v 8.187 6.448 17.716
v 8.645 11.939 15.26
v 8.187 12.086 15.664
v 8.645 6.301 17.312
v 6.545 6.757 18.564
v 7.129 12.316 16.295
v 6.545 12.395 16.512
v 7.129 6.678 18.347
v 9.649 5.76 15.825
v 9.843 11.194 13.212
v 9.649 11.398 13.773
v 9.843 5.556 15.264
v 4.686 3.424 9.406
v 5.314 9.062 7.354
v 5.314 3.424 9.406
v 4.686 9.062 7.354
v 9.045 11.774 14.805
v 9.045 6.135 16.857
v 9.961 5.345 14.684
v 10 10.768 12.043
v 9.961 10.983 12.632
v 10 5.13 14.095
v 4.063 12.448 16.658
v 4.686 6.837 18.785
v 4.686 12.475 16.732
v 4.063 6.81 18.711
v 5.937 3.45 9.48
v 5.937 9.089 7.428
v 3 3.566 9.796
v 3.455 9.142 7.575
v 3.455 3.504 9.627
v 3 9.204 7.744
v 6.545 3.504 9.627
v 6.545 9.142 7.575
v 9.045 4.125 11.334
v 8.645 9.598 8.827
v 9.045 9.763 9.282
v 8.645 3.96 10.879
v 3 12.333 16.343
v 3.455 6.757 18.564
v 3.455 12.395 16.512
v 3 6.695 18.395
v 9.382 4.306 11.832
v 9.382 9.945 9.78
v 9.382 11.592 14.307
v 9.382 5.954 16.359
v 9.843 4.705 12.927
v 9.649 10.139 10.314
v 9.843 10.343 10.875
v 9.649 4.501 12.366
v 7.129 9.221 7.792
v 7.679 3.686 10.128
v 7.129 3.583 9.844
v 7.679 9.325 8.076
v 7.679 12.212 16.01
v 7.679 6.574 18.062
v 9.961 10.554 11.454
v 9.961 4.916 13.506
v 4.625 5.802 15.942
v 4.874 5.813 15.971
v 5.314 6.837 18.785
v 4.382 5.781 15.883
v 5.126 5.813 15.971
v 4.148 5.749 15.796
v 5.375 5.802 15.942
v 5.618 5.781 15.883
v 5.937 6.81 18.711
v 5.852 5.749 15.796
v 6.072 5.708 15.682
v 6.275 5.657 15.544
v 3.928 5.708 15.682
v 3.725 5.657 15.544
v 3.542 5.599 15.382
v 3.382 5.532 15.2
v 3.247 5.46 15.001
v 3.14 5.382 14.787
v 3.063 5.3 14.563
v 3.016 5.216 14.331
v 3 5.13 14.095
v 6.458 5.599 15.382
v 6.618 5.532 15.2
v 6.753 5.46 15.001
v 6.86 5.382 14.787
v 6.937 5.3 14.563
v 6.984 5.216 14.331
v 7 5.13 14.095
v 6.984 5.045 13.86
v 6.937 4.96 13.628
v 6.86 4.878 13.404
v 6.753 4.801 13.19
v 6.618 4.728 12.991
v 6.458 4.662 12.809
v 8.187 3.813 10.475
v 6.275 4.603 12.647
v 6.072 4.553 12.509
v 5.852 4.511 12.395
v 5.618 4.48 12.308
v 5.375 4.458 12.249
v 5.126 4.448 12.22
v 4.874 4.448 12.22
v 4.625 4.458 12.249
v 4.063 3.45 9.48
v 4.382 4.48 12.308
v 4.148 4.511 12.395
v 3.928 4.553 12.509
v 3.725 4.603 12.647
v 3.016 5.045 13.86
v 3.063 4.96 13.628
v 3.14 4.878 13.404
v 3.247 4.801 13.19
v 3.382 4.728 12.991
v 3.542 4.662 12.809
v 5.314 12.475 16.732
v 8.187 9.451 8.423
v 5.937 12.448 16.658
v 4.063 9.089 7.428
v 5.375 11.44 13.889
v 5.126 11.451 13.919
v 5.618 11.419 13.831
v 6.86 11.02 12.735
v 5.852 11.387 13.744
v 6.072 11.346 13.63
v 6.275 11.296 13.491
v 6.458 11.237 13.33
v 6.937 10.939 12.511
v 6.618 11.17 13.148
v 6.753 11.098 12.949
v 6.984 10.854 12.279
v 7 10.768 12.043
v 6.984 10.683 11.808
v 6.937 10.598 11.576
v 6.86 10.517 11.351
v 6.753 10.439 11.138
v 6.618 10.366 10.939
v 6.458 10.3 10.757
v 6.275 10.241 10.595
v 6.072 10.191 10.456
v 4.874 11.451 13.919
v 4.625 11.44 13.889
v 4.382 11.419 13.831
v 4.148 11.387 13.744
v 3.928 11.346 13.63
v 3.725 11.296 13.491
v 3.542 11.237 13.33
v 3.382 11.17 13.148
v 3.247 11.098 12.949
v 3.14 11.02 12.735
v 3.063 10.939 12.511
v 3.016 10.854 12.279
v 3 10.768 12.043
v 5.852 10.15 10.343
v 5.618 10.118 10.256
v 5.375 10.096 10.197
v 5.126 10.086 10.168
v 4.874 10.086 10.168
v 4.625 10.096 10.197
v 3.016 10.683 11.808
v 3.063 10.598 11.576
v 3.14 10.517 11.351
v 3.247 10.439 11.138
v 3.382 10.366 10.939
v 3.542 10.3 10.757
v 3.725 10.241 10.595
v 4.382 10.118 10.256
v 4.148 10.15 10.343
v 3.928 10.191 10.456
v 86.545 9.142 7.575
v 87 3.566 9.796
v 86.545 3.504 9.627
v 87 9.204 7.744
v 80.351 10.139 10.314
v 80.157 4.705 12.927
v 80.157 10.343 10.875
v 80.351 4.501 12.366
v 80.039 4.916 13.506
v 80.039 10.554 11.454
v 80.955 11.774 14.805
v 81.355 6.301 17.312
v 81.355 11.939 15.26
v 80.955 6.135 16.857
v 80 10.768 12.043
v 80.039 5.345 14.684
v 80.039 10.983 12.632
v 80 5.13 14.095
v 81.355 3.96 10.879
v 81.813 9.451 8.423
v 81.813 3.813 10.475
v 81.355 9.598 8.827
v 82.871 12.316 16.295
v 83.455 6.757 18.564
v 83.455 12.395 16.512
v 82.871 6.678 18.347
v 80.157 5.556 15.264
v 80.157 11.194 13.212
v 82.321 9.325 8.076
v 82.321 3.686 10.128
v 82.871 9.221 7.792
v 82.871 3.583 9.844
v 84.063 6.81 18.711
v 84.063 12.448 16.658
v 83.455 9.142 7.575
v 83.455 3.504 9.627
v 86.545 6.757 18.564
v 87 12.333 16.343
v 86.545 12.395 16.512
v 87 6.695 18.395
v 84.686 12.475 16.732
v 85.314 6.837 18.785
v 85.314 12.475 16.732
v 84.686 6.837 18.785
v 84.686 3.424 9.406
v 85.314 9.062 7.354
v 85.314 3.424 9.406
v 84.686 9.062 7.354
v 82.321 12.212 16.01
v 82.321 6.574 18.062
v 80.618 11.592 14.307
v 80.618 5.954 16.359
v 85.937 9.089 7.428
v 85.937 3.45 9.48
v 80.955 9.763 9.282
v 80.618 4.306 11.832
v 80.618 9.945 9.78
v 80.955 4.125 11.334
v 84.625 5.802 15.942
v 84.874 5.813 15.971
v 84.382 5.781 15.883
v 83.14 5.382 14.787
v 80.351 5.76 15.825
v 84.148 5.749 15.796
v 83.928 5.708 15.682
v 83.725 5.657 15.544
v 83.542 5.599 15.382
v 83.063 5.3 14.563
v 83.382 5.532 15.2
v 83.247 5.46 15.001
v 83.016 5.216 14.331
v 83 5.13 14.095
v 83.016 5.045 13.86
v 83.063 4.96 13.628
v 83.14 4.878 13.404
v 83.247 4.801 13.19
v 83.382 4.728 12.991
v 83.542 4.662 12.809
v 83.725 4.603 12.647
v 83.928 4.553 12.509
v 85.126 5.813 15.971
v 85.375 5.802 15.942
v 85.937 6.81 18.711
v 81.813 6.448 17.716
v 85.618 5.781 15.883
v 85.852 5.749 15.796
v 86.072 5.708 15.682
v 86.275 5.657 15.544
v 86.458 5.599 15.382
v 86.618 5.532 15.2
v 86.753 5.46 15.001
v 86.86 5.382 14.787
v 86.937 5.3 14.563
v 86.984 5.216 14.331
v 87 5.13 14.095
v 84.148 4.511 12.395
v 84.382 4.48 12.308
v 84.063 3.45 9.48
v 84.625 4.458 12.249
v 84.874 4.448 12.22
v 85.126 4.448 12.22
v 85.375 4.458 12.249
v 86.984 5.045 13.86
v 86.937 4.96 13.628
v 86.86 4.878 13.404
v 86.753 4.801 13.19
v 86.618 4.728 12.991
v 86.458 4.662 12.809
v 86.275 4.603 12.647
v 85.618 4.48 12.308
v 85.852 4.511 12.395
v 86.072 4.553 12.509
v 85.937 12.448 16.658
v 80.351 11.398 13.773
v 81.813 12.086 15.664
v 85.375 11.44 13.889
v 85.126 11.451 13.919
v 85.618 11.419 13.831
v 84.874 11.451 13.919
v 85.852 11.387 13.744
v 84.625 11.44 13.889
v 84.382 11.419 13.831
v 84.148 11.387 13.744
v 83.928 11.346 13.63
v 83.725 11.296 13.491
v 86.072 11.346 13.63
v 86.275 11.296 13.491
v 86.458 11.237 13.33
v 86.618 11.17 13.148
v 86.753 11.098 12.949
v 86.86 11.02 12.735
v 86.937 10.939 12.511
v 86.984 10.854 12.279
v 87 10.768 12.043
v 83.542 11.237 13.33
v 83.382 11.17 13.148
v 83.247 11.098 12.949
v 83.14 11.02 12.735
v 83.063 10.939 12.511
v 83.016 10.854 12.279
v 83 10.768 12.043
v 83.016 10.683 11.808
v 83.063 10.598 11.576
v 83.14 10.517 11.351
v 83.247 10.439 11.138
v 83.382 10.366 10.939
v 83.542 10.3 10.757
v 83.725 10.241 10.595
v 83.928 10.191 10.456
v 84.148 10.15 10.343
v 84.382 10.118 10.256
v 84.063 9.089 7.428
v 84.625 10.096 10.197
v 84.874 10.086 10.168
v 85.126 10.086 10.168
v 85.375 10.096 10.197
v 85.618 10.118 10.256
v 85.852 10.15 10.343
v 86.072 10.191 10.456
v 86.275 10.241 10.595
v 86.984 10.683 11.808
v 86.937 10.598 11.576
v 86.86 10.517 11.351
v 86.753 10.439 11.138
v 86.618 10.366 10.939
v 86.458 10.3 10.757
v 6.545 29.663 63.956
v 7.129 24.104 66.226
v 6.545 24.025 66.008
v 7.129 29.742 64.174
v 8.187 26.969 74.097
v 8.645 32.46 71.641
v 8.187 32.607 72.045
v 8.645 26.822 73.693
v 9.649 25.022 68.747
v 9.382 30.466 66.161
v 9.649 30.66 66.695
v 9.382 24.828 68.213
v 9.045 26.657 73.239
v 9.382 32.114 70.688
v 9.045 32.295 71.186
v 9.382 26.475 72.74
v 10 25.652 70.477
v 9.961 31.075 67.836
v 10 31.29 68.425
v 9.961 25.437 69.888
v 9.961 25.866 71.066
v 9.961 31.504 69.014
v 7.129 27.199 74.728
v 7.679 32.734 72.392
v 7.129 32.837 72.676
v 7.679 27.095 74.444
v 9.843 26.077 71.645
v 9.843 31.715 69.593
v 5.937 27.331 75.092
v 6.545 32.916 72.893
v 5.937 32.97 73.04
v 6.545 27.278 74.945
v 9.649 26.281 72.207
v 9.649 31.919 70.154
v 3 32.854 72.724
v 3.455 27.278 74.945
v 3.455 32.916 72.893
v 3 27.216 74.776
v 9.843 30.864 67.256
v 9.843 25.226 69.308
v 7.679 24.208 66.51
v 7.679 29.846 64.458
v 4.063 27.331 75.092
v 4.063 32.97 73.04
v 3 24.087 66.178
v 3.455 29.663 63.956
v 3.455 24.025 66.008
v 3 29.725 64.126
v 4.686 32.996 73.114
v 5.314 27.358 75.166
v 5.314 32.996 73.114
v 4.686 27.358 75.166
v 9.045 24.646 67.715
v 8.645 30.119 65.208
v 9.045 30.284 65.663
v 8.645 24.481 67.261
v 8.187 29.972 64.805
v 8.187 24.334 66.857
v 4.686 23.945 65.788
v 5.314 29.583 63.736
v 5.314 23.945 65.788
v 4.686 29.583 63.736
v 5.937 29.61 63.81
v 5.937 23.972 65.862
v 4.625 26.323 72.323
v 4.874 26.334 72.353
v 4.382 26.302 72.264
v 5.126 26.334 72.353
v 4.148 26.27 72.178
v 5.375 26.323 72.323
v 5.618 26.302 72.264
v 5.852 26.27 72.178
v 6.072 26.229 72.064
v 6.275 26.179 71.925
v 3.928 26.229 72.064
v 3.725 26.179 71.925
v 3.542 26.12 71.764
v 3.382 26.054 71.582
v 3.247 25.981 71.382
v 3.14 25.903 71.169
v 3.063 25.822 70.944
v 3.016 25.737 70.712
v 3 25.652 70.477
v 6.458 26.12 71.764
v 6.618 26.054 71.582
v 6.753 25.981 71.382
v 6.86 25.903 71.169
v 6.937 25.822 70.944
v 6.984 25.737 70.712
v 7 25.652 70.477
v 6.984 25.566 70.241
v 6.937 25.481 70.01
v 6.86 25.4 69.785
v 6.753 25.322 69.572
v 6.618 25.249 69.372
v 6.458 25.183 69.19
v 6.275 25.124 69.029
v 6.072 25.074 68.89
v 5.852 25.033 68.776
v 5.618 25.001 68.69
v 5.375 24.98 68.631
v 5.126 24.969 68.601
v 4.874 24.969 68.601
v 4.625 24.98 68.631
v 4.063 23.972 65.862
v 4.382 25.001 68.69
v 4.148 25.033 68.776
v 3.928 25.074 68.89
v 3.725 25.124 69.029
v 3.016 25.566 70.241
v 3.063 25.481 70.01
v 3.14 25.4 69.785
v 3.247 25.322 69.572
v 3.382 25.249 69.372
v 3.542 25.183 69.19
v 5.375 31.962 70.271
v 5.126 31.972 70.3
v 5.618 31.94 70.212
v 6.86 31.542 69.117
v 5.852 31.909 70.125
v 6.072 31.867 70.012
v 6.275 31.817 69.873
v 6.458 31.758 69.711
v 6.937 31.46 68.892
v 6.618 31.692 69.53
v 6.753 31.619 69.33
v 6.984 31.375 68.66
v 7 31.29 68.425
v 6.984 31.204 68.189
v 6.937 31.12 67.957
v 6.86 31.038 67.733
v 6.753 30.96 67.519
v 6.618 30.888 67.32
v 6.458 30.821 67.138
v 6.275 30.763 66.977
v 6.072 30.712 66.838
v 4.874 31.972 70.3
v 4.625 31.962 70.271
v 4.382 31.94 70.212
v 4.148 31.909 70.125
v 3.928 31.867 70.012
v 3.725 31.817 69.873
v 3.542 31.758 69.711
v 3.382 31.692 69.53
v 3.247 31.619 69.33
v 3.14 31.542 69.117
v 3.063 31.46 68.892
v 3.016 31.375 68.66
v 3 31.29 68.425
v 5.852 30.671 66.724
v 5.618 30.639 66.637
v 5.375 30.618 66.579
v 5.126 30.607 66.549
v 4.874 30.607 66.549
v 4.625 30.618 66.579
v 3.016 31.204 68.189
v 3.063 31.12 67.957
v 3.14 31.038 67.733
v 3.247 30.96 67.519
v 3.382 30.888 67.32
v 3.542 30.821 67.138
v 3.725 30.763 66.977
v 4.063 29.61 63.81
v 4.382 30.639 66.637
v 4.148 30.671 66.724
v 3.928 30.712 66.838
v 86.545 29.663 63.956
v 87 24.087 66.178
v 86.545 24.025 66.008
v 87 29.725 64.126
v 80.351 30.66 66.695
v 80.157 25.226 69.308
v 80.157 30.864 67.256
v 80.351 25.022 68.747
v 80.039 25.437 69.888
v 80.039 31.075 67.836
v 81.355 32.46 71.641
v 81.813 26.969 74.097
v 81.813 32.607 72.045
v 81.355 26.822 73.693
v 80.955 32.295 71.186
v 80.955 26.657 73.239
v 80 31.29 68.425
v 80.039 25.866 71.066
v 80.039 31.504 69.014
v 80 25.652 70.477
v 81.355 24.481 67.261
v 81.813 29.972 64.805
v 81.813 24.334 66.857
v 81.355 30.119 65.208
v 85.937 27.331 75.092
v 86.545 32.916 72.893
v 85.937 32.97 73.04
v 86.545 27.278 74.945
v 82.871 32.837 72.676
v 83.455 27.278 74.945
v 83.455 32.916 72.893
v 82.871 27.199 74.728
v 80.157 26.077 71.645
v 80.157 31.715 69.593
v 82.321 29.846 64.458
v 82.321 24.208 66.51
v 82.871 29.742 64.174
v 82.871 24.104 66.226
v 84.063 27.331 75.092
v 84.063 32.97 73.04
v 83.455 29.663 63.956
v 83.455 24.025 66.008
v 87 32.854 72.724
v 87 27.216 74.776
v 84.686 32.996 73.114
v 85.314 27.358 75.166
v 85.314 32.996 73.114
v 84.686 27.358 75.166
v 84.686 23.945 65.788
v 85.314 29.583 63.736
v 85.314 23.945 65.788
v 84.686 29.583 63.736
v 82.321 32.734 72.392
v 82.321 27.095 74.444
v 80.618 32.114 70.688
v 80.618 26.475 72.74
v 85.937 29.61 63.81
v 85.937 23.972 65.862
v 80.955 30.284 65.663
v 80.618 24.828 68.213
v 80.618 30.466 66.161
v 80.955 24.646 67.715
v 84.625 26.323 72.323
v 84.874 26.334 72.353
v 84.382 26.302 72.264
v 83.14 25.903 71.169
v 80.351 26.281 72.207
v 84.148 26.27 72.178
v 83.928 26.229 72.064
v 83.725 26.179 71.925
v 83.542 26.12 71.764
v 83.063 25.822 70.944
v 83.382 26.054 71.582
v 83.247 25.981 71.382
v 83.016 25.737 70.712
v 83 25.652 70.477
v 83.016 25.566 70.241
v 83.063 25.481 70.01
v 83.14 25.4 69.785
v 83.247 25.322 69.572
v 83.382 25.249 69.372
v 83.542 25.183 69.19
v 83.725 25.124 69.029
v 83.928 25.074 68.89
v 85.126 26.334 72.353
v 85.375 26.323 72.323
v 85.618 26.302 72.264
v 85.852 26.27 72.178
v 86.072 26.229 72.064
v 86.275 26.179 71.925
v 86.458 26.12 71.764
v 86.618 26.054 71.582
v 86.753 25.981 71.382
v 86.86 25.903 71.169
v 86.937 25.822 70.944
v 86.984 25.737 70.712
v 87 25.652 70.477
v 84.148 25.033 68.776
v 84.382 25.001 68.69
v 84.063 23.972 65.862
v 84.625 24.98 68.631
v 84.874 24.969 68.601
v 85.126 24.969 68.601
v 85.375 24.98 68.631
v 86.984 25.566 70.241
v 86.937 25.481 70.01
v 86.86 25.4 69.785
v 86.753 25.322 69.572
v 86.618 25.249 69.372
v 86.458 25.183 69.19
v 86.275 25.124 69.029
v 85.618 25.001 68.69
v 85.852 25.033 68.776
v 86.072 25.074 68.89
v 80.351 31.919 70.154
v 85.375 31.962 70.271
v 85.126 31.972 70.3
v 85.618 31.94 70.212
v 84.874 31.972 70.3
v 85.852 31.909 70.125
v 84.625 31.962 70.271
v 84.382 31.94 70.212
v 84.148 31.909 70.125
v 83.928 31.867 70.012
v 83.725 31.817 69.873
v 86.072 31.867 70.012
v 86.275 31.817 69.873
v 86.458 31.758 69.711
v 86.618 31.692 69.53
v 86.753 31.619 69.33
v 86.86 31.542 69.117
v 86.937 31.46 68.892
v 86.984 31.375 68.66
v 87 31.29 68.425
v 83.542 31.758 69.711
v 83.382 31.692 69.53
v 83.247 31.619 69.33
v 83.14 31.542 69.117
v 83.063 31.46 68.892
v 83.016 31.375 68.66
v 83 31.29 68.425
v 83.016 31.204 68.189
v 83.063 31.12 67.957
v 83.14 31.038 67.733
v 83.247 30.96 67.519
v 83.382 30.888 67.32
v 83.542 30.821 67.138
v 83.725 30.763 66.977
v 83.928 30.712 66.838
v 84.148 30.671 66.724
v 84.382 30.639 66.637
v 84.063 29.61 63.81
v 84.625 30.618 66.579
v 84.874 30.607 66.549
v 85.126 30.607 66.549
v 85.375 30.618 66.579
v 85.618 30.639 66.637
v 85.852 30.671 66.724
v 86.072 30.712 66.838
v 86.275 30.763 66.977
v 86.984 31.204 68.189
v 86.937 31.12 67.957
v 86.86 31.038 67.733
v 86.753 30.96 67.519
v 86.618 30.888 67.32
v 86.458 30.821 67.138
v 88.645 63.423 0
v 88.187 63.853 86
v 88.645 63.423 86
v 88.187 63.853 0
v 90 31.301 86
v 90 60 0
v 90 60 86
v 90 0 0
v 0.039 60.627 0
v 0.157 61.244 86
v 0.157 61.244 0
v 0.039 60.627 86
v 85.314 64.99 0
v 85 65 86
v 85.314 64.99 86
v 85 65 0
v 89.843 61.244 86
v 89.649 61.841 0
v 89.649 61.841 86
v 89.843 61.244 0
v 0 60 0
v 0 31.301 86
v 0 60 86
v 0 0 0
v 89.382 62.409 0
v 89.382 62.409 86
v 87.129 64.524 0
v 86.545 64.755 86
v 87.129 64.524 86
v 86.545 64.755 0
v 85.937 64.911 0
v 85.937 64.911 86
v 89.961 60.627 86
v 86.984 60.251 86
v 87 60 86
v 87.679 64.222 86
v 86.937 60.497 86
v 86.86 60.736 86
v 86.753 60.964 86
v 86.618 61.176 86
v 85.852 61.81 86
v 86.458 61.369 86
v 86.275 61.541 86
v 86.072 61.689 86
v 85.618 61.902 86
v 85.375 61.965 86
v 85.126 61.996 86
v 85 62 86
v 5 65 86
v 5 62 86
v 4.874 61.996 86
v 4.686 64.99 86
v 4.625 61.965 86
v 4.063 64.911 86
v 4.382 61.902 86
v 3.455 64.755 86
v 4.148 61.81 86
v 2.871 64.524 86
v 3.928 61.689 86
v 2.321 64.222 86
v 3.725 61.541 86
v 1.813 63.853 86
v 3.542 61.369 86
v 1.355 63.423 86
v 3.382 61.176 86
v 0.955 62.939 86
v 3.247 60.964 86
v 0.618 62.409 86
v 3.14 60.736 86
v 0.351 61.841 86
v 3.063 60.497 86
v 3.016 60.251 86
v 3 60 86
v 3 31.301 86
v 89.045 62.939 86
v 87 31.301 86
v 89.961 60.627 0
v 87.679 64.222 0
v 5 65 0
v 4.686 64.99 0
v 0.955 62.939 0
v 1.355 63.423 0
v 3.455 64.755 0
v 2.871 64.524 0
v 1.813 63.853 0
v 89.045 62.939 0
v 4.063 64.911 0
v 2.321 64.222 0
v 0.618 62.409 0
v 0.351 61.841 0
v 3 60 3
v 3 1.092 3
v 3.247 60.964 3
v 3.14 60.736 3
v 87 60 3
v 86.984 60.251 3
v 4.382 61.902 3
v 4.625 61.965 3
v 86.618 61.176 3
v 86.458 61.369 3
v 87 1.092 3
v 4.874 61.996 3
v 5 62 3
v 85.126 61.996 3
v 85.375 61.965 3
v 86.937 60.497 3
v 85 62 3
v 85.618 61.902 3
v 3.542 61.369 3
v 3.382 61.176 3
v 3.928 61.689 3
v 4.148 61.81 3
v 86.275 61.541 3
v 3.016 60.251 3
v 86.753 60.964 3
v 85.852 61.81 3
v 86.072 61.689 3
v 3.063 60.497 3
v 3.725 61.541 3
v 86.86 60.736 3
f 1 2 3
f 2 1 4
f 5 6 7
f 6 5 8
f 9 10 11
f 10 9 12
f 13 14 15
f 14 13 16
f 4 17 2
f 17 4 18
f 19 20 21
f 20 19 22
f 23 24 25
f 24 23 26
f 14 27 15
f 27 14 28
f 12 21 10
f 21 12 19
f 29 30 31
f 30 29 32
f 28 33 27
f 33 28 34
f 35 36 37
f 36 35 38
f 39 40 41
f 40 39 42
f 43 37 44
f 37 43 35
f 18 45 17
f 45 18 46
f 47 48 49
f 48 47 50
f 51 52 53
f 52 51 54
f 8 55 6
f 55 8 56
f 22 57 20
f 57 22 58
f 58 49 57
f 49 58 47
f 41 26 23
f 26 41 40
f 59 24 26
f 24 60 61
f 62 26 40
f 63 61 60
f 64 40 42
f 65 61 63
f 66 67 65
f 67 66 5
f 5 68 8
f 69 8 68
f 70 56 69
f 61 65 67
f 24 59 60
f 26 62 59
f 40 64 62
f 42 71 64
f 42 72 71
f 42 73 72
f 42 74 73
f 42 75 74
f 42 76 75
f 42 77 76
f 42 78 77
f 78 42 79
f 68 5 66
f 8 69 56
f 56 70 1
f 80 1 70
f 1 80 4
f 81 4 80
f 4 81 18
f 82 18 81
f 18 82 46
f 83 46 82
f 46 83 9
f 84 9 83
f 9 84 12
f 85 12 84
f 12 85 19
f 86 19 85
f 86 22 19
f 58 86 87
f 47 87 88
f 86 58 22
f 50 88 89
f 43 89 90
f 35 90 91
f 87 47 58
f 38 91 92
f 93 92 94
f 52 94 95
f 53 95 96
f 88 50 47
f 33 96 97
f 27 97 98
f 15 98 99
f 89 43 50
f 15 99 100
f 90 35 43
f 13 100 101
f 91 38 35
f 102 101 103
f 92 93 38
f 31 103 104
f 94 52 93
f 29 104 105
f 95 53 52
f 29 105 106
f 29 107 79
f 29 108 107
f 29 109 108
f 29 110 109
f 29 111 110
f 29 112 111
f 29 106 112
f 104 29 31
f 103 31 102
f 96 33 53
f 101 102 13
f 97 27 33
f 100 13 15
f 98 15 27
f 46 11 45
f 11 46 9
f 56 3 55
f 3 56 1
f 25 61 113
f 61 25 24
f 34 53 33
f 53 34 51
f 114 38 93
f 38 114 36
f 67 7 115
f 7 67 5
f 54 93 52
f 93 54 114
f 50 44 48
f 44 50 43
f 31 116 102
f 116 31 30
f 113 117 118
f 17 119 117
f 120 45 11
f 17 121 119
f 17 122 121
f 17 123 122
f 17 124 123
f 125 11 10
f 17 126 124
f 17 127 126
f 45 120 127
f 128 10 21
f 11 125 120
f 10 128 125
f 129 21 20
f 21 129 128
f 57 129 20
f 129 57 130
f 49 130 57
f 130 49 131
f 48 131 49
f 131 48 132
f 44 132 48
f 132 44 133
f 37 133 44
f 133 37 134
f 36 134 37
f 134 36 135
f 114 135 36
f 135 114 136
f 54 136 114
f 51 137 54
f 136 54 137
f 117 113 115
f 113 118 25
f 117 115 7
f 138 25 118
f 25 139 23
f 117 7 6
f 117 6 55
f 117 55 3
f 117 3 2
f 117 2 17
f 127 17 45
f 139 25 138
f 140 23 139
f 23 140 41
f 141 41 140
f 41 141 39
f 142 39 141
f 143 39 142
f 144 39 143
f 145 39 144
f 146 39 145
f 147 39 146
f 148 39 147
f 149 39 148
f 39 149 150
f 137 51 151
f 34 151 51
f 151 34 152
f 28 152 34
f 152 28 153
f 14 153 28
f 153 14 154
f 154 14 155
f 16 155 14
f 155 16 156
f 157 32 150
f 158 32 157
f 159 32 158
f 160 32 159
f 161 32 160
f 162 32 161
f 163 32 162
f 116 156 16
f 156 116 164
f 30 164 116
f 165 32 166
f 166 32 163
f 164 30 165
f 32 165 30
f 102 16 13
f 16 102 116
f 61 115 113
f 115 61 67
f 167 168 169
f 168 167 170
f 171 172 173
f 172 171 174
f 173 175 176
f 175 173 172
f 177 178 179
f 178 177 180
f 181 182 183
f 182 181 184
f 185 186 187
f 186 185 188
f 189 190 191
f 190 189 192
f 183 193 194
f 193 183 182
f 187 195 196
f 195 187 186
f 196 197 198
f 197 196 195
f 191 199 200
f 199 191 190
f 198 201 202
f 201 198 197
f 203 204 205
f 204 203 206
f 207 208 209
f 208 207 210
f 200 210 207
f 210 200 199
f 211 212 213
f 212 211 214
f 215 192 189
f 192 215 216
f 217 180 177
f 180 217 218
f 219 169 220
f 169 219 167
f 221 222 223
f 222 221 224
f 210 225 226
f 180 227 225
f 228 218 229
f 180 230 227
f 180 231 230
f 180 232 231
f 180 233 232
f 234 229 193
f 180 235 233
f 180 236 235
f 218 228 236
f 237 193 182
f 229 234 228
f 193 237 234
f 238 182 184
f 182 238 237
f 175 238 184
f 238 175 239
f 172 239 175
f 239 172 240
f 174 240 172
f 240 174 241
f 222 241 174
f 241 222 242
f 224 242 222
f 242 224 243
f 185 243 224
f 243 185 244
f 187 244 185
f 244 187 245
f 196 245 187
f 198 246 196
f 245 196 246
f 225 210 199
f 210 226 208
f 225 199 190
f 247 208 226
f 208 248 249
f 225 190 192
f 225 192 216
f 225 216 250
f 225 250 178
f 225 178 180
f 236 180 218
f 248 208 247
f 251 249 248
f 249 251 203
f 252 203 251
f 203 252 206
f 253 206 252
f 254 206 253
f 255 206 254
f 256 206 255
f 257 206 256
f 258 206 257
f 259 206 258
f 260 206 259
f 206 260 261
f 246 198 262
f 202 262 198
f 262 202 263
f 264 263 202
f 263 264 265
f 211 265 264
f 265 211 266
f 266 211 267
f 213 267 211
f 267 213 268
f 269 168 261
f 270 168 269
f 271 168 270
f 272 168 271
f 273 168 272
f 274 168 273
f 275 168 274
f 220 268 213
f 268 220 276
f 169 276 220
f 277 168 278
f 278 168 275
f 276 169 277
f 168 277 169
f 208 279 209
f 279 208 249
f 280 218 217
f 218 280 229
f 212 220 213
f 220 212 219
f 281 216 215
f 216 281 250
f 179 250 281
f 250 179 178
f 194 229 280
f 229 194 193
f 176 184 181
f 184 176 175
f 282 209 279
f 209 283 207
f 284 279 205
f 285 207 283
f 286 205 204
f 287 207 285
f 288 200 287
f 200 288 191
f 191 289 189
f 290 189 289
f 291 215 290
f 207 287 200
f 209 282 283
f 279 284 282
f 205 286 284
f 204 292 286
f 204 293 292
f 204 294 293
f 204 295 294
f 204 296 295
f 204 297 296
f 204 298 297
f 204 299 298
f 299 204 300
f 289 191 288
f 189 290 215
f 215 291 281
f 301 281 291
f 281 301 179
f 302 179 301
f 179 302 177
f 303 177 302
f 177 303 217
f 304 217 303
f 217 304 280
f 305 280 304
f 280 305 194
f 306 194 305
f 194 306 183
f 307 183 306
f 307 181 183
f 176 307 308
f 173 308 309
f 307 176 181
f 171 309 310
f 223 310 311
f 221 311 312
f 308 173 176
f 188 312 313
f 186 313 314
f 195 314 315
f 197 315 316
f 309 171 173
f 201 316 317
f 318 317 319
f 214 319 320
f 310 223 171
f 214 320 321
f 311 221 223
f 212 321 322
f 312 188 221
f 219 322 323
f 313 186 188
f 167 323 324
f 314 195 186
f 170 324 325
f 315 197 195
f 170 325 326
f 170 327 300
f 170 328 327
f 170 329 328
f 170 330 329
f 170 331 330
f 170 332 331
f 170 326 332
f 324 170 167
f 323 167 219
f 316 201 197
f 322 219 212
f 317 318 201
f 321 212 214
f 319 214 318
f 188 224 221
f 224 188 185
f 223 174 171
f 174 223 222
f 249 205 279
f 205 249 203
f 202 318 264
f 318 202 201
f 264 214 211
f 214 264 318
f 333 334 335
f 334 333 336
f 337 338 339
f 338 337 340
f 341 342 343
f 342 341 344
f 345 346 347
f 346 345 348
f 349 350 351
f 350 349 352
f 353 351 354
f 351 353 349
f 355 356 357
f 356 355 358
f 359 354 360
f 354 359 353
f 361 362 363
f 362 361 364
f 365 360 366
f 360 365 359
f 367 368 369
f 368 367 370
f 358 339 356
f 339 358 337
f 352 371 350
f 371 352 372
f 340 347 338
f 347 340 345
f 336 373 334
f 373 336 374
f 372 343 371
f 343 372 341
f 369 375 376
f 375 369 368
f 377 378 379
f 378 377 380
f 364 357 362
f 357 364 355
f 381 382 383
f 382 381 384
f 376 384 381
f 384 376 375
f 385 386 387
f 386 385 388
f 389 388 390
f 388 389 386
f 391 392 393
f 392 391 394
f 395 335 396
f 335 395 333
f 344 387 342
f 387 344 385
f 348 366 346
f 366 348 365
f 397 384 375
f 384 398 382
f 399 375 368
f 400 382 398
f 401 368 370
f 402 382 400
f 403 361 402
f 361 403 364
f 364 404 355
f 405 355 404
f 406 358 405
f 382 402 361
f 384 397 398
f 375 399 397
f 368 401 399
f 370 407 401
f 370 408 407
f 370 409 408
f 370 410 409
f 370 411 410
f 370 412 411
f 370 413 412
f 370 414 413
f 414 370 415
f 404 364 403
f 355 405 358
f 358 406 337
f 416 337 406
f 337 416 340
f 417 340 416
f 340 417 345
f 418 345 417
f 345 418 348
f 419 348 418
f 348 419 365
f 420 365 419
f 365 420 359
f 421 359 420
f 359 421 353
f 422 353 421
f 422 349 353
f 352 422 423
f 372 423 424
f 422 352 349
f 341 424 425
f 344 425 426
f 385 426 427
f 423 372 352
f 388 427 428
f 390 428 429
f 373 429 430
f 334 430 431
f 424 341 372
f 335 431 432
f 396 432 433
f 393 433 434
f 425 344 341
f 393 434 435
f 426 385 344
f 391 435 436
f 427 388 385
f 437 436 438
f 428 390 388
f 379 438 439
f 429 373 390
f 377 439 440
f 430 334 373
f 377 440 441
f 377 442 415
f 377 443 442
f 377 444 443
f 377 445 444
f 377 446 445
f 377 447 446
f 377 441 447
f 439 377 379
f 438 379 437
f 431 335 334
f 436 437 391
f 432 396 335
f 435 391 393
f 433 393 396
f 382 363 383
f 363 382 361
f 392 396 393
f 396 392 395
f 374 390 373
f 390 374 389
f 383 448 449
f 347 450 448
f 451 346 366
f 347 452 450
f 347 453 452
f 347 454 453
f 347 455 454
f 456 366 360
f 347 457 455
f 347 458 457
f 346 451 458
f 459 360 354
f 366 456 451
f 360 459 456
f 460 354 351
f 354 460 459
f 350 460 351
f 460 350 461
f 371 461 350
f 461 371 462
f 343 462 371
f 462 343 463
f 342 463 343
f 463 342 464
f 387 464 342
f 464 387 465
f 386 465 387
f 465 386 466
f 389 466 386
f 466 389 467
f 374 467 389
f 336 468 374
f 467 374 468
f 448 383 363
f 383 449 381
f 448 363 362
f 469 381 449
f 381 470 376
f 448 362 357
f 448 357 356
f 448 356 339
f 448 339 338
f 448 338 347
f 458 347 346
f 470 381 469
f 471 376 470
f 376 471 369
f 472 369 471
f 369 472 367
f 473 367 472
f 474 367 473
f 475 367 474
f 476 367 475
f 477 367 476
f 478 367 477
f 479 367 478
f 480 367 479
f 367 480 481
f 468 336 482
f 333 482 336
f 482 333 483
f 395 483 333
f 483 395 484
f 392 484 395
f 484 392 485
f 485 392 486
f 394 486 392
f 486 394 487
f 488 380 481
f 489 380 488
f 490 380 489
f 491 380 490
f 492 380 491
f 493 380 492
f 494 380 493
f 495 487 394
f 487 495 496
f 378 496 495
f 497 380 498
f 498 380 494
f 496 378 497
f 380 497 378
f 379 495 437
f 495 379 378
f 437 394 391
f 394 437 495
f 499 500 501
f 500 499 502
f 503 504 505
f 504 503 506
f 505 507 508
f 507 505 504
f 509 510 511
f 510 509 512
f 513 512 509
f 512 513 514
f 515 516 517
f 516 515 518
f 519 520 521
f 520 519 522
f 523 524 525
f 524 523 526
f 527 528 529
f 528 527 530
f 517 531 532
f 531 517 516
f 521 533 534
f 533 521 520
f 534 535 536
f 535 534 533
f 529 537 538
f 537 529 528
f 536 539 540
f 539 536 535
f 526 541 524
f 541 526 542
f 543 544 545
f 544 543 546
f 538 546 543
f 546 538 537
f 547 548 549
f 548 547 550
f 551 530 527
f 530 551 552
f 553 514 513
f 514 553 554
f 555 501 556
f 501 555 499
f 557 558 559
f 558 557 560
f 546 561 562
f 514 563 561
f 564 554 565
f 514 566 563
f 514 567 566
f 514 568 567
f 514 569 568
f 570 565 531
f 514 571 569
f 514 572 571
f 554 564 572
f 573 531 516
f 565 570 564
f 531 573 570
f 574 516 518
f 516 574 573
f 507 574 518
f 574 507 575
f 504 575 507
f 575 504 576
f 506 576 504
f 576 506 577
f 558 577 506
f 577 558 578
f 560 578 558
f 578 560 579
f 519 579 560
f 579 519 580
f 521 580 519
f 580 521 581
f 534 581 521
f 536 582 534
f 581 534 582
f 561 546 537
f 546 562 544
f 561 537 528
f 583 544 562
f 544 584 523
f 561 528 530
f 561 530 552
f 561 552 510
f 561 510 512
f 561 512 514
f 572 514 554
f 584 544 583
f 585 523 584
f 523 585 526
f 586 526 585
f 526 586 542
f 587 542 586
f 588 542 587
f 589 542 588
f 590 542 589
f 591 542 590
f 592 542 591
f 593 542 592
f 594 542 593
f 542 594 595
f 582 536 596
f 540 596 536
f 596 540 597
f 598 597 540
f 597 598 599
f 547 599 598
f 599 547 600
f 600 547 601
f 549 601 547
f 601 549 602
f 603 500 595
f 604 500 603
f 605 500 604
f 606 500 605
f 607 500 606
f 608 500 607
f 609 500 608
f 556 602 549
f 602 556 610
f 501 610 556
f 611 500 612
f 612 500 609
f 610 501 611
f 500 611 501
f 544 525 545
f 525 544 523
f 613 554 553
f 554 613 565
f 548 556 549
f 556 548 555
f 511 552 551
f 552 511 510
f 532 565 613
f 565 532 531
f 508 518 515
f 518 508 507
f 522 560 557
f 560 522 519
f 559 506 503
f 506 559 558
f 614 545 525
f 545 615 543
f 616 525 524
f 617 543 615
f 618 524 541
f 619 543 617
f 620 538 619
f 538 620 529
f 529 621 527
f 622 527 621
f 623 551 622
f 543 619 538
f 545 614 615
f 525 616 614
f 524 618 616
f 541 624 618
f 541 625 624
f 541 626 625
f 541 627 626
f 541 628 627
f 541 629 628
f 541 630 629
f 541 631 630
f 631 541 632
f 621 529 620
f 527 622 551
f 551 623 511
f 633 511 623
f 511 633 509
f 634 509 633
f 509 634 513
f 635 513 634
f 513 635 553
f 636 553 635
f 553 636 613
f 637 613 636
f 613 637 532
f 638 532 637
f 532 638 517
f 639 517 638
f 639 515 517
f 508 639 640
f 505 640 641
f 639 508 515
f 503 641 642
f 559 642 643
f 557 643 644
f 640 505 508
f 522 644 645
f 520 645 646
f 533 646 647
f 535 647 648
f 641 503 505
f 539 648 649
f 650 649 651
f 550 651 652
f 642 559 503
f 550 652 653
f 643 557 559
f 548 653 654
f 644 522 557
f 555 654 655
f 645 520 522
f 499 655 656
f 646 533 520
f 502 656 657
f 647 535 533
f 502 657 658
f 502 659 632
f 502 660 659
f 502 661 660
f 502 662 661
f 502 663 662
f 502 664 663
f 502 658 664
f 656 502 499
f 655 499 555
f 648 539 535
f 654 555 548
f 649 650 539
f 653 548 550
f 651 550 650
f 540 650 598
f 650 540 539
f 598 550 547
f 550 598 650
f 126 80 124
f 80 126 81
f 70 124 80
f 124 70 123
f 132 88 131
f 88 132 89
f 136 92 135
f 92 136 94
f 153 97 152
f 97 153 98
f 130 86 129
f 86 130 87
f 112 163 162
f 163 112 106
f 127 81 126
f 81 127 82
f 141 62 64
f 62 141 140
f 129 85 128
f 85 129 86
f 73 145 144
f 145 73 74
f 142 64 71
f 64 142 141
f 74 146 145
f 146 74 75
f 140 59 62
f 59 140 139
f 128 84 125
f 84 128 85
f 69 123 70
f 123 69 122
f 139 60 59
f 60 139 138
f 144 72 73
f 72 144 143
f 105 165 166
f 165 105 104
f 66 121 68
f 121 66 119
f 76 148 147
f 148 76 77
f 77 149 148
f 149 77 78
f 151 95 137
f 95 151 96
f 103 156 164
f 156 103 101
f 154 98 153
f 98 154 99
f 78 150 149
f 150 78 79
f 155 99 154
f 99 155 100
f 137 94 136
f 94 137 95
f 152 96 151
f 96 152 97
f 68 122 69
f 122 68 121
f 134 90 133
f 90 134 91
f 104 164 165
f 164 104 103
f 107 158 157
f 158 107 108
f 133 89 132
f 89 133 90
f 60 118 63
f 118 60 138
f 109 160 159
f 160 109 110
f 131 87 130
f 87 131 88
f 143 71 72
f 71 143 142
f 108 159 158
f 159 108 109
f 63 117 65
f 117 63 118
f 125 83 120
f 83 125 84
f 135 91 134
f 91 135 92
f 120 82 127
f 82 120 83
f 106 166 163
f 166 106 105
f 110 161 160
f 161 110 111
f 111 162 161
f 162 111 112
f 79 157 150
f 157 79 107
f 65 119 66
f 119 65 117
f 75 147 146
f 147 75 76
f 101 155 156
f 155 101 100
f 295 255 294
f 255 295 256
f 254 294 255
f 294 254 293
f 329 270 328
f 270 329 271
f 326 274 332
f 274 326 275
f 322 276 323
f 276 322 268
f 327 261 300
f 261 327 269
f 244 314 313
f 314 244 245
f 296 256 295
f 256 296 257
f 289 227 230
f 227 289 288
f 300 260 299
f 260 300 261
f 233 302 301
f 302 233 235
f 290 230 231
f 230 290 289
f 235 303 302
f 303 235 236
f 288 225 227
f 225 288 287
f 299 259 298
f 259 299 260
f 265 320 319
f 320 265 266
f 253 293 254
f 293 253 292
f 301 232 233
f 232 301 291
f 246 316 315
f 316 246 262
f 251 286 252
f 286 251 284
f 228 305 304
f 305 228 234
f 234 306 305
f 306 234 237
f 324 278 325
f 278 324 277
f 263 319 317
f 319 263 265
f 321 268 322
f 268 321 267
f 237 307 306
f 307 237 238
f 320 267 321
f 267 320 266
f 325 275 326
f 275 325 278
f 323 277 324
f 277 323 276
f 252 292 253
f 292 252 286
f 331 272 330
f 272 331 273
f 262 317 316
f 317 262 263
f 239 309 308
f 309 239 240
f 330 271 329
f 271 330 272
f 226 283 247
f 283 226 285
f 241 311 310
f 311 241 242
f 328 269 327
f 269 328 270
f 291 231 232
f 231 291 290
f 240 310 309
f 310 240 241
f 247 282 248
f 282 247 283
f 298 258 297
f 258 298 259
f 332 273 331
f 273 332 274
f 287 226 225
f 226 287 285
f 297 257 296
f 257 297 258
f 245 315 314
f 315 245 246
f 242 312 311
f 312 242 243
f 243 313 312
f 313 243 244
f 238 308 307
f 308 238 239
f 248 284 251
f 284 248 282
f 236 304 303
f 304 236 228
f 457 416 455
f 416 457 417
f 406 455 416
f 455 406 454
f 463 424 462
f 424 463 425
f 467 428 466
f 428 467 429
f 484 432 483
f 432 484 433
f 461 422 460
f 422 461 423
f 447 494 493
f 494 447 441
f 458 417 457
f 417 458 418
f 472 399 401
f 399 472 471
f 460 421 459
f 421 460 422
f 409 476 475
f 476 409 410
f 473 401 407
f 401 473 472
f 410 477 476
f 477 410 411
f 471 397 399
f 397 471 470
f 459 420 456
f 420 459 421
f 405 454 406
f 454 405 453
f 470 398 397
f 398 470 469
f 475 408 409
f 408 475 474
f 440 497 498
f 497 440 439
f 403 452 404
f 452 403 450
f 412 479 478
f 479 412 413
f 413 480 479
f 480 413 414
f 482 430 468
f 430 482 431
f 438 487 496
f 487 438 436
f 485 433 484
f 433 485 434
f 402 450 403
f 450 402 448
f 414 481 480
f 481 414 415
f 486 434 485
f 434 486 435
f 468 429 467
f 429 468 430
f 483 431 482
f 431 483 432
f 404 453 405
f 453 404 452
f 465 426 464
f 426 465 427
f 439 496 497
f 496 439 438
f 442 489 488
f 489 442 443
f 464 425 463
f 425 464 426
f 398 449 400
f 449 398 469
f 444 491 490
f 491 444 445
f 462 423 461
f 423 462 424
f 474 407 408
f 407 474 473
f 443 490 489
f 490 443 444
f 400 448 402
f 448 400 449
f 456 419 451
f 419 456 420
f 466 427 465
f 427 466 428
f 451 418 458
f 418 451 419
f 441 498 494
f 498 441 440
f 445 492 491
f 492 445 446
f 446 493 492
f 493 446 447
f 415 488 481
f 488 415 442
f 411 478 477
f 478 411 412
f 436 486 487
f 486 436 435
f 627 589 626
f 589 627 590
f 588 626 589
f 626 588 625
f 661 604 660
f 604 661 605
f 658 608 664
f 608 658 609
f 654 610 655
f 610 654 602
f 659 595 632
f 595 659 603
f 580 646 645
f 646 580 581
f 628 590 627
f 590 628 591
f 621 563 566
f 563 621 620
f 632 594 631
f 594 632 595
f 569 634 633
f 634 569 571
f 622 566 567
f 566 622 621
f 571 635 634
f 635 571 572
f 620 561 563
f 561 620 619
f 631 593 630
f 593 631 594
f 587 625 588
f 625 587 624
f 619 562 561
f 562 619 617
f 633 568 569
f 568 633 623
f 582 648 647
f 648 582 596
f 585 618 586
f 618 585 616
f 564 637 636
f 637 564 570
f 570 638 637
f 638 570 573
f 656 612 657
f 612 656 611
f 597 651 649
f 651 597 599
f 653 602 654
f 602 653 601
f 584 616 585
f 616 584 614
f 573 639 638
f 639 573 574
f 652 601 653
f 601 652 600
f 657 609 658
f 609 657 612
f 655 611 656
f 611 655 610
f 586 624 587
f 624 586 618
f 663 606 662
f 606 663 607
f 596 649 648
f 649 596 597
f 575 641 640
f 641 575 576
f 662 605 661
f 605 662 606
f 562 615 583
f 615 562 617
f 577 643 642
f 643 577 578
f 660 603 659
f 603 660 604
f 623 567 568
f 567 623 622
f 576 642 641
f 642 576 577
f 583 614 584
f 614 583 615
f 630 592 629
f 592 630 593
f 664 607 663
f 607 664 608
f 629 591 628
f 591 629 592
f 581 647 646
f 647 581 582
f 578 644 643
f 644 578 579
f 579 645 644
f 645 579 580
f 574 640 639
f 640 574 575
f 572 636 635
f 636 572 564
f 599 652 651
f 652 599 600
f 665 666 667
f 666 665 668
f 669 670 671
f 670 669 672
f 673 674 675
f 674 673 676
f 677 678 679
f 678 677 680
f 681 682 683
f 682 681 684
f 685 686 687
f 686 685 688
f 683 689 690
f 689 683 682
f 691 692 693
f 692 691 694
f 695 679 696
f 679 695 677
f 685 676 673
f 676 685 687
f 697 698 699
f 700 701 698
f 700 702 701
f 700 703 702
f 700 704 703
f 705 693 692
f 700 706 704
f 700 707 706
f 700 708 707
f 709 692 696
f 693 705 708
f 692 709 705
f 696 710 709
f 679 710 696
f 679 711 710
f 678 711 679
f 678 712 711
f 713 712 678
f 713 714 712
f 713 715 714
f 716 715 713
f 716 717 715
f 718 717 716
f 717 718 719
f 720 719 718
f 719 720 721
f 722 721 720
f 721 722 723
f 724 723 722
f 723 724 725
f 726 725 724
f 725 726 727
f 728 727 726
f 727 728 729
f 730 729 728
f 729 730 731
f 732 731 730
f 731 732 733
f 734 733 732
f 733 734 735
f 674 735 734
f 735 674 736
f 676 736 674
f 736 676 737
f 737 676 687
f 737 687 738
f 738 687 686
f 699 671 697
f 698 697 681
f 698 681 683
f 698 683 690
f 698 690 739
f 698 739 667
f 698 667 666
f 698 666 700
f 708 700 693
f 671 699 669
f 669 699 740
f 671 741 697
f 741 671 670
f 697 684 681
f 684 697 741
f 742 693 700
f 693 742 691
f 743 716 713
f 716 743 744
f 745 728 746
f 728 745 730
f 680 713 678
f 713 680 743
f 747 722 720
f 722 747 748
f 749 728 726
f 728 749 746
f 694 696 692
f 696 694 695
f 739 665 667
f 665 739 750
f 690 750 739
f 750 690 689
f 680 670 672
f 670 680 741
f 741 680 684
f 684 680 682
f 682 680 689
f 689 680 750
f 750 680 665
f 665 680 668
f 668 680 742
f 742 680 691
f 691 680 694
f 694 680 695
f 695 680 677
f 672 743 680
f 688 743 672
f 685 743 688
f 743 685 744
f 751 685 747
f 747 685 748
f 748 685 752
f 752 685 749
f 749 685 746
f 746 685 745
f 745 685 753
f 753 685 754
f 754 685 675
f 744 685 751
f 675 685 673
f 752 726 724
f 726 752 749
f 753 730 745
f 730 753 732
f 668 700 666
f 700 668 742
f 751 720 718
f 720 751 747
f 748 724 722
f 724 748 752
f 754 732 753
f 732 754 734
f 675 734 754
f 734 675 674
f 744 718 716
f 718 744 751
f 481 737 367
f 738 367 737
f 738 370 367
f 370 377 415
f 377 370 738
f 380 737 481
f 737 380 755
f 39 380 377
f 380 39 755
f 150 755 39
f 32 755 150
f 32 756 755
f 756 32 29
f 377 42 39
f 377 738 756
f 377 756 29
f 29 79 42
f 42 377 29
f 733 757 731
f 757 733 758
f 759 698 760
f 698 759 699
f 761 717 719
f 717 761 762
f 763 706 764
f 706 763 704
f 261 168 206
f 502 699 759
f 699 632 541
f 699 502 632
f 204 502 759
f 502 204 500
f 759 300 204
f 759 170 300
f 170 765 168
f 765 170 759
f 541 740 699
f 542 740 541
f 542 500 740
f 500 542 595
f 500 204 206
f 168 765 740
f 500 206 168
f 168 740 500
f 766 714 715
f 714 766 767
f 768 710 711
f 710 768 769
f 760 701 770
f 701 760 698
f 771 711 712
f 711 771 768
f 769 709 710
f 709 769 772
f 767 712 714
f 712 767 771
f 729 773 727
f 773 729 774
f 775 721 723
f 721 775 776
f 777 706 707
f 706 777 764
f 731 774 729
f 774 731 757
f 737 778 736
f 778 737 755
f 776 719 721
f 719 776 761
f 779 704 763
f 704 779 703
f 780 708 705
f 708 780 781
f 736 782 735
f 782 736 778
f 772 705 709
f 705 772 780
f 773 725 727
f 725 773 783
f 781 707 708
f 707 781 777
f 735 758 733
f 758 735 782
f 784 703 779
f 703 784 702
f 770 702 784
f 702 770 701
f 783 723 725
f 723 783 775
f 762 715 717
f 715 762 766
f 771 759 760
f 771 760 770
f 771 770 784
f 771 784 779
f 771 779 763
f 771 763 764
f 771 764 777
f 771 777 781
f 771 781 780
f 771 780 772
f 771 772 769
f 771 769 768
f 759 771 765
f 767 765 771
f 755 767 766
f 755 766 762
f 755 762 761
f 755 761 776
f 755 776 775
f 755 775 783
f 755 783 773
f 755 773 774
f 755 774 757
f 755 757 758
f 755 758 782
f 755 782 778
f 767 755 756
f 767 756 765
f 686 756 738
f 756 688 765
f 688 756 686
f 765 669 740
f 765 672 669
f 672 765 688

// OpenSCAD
$fn=50;
iota=0.000001;
module hplate(dd,ww,rr) {
  union() {
    difference() {
      square([ww,dd]);
      translate([ww-rr,dd-rr]) square([rr,rr]);
      translate([0,dd-rr]) square([rr,rr]);
    }
    translate([ww-rr,dd-rr]) circle(rr);
    translate([rr,dd-rr]) circle(rr);
  }
}

module bod0(depth,ww,ht,rr,wall) {
  hull() {
    linear_extrude(1) hplate(depth,ww,rr,wall);
    translate([0,0,ht]) linear_extrude(1) hplate(depth,ww,rr);
  }
}

module body(depth,width,height,radius,wall) {
  difference() {
    bod0(depth,width,height,radius,wall);
    translate([wall,0,wall])
      bod0(depth-wall,width-wall*2,height-wall,
           radius-wall,wall);
  }
}

module holething(width,height,angle,offsets) {
  CYHT=6;
  CYRAD=5;
  rotate([90-angle,0,0])
  mirror([0,0,1])
  difference() {
    union() {
      //cube([width,height,1]);
      for (offset=offsets) {
        translate([CYRAD,CYRAD+offset,0]) cylinder(CYHT,r=CYRAD);
        translate([width-CYRAD,CYRAD+offset,0]) cylinder(CYHT,r=CYRAD);
      }
    }
    for (offset=offsets) {
      translate([CYRAD,CYRAD+offset,0]) cylinder(CYHT,r=2);
      translate([width-CYRAD,CYRAD+offset,0]) cylinder(CYHT,r=2);
    }
  }
}

module sliced_body(depth,width,height,radius,wall,angle) {
  holething(width,height,angle,[10,70]);
  difference() {
    cutterDepth=30;
    body(depth,width,height,radius,wall);
    //TODO: figure out cutterDepth as fn of angle
    //TODO: figure out cube Z as fn of angle
    rotate([-angle,0,0])translate([0,-cutterDepth,0])
      cube([width,cutterDepth,wall+height/cos(angle)]);
  // now make cube with screwhole outies to merge into main
  }
}

//sliced_body(30,40,25,5,3,20);
sliced_body(65,90,85,5,3,20);
//rotate([90,0,90]) import("Case.STL");
